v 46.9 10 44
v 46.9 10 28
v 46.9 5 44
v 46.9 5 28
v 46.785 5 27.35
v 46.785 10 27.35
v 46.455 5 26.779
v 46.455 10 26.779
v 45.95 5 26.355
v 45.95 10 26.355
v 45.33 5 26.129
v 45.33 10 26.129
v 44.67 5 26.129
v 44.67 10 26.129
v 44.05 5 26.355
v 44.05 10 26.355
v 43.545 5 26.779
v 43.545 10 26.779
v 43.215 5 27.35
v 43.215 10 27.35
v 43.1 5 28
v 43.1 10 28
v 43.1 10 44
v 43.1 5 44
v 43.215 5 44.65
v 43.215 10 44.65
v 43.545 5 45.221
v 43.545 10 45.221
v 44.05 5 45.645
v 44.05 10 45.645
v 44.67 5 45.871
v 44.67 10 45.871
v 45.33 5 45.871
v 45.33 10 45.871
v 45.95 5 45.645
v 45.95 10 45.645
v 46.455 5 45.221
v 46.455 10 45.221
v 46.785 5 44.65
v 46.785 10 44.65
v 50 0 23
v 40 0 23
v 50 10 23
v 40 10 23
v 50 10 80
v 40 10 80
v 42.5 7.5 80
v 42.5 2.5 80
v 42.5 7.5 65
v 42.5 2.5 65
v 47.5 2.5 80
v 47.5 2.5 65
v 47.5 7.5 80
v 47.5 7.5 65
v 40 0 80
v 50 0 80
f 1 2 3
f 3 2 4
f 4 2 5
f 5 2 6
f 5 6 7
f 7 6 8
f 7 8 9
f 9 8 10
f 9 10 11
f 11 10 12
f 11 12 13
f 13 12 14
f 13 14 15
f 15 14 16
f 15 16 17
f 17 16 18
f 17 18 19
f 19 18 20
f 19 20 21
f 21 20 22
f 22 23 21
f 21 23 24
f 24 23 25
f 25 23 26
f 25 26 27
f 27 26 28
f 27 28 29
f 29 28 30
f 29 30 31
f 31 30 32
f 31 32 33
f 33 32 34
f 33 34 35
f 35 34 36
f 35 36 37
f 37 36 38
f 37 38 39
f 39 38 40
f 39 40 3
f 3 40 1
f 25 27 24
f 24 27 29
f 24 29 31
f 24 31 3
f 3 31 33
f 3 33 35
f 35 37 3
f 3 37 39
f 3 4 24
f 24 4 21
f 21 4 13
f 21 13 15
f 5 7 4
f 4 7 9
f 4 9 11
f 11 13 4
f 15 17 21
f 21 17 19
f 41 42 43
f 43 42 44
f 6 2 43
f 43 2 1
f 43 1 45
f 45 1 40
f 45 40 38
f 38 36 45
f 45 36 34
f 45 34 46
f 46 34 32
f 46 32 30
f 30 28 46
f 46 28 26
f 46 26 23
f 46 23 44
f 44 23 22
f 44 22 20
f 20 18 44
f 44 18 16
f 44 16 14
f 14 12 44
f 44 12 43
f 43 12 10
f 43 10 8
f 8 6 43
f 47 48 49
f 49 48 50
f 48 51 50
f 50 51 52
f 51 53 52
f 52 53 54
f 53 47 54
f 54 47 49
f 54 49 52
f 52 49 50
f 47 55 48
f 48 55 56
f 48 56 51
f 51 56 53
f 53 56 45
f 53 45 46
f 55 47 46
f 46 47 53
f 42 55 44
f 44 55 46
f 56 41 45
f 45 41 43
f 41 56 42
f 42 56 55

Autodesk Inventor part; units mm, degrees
ref_plane "YZ Plane" through (0, 0, 0) normal (1, 0, 0) x (0, 1, 0)
ref_plane "XZ Plane" through (0, 0, 0) normal (0, 1, 0) x (-1, 0, 0)
ref_plane "XY Plane" through (0, 0, 0) normal (0, 0, 1) x (1, 0, 0)
sketch "Sketch1" plane through (0, 0, 0) normal (0, 1, 0) x (-1, 0, 0)
  line L0 (50, 80) -> (-50, 80) construction
  line L1 (-50, 80) -> (-50, -80) construction
  line L2 (-50, -80) -> (50, -80) construction
  line L3 (50, -80) -> (50, 80) construction
  line L4 (50, -80) -> (40, -80)
  line L5 (40, -80) -> (40, -50)
  line L6 (50, -80) -> (50, -50)
  line L7 (-50, 80) -> (-50, 60)
  line L8 (-50, 80) -> (-40, 80)
  line L9 (-40, 80) -> (-40, 60)
  line L10 (-40, 60) -> (50, -50)
  line L11 (-50, 60) -> (40, -50)
  point P0 (0, 0)
  point P1 (50, 0)
  point P2 (0, -80)
  dimension "d0" = 160
  dimension "d1" = 100
  dimension "d2" = 10
  dimension "d3" = 30
  dimension "d4" = 20
  dimension "d5" = 10
extrude "Extrusion1" add sketch "Sketch1" along normal blind 10
sketch "Sketch2" plane through (40, 0, 80) normal (0, 0, 1) x (1, 0, 0)
  line L0 (-90, 0) -> (0, 0) construction
  line L1 (10, 10) -> (-80, 10) construction
  line L2 (0, 0) -> (10, 10) construction
  line L3 (2.5, 7.5) -> (7.5, 7.5)
  line L4 (7.5, 7.5) -> (7.5, 2.5)
  line L5 (7.5, 2.5) -> (2.5, 2.5)
  line L6 (2.5, 2.5) -> (2.5, 7.5)
  line L7 (2.5, 7.5) -> (7.5, 2.5) construction
  line L8 (7.5, 7.5) -> (2.5, 2.5) construction
  point P0 (-40, 0)
  point P1 (5, 5)
  dimension "d8" = 5
  dimension "d9" = 5
extrude "Extrusion2" cut sketch "Sketch2" against normal blind 15
sketch "Sketch4" plane through (0, 10, 0) normal (0, 1, 0) x (1, 0, 0)
  line L0 (50, -80) -> (50, -60) projected
  line L1 (50, -60) -> (-84.9338, -60)
  line L2 (-84.9338, -60) -> (-84.9338, 89.9806)
  line L3 (-84.9338, 89.9806) -> (50, 89.9806)
  line L4 (50, 89.9806) -> (50, -60)
  point P0 (0, 0)
extrude "Extrusion4" cut sketch "Sketch4" against normal blind 10
sketch "Sketch5" plane through (50, 10, 60) normal (0, 0, -1) x (-1, 0, 0)
  line L0 (0, -10) -> (0, 0) projected
  line L1 (10, -10) -> (10, 0) projected
  line L2 (0, -10) -> (10, -10)
  line L3 (10, -10) -> (10, 0)
  line L4 (10, 0) -> (0, 0)
  line L5 (0, 0) -> (0, -10)
  point P0 (50, -10)
extrude "Extrusion5" add sketch "Sketch5" along normal blind 10
sketch "Sketch7" plane through (50, 10, 50) normal (0, 0, -1) x (-1, 0, 0)
  line L0 (0, 0) -> (0, -10) projected
  line L1 (10, 0) -> (0, 0) projected
  line L2 (0, -10) -> (10, -10)
  line L3 (10, -10) -> (10, 0)
  line L4 (10, 0) -> (0, 0)
  line L5 (0, 0) -> (0, -10)
  point P0 (50, -10)
extrude "Extrusion6" add sketch "Sketch7" along normal blind 27
sketch "Sketch9" plane through (0, 10, 0) normal (0, 1, 0) x (1, 0, 0)
  arc A0 (46.9, -28) -> (43.1, -28) centre (45, -28) ccw
  line L0 (40, -23) -> (50, -23) projected
  arc A1 (43.1, -44) -> (46.9, -44) centre (45, -44) ccw
  line L1 (40, -80) -> (40, -23) projected
  line L2 (43.1, -44) -> (43.1, -28)
  line L3 (46.9, -44) -> (46.9, -28)
  point P0 (0, 0)
  dimension "d25" = 3.8
  dimension "d26" = 5
  dimension "d27" = 3.8
  dimension "d28" = 16
  dimension "d29" = 5
extrude "Extrusion7" cut sketch "Sketch9" against normal blind 5
properties part number "Arm_v2_richard"
